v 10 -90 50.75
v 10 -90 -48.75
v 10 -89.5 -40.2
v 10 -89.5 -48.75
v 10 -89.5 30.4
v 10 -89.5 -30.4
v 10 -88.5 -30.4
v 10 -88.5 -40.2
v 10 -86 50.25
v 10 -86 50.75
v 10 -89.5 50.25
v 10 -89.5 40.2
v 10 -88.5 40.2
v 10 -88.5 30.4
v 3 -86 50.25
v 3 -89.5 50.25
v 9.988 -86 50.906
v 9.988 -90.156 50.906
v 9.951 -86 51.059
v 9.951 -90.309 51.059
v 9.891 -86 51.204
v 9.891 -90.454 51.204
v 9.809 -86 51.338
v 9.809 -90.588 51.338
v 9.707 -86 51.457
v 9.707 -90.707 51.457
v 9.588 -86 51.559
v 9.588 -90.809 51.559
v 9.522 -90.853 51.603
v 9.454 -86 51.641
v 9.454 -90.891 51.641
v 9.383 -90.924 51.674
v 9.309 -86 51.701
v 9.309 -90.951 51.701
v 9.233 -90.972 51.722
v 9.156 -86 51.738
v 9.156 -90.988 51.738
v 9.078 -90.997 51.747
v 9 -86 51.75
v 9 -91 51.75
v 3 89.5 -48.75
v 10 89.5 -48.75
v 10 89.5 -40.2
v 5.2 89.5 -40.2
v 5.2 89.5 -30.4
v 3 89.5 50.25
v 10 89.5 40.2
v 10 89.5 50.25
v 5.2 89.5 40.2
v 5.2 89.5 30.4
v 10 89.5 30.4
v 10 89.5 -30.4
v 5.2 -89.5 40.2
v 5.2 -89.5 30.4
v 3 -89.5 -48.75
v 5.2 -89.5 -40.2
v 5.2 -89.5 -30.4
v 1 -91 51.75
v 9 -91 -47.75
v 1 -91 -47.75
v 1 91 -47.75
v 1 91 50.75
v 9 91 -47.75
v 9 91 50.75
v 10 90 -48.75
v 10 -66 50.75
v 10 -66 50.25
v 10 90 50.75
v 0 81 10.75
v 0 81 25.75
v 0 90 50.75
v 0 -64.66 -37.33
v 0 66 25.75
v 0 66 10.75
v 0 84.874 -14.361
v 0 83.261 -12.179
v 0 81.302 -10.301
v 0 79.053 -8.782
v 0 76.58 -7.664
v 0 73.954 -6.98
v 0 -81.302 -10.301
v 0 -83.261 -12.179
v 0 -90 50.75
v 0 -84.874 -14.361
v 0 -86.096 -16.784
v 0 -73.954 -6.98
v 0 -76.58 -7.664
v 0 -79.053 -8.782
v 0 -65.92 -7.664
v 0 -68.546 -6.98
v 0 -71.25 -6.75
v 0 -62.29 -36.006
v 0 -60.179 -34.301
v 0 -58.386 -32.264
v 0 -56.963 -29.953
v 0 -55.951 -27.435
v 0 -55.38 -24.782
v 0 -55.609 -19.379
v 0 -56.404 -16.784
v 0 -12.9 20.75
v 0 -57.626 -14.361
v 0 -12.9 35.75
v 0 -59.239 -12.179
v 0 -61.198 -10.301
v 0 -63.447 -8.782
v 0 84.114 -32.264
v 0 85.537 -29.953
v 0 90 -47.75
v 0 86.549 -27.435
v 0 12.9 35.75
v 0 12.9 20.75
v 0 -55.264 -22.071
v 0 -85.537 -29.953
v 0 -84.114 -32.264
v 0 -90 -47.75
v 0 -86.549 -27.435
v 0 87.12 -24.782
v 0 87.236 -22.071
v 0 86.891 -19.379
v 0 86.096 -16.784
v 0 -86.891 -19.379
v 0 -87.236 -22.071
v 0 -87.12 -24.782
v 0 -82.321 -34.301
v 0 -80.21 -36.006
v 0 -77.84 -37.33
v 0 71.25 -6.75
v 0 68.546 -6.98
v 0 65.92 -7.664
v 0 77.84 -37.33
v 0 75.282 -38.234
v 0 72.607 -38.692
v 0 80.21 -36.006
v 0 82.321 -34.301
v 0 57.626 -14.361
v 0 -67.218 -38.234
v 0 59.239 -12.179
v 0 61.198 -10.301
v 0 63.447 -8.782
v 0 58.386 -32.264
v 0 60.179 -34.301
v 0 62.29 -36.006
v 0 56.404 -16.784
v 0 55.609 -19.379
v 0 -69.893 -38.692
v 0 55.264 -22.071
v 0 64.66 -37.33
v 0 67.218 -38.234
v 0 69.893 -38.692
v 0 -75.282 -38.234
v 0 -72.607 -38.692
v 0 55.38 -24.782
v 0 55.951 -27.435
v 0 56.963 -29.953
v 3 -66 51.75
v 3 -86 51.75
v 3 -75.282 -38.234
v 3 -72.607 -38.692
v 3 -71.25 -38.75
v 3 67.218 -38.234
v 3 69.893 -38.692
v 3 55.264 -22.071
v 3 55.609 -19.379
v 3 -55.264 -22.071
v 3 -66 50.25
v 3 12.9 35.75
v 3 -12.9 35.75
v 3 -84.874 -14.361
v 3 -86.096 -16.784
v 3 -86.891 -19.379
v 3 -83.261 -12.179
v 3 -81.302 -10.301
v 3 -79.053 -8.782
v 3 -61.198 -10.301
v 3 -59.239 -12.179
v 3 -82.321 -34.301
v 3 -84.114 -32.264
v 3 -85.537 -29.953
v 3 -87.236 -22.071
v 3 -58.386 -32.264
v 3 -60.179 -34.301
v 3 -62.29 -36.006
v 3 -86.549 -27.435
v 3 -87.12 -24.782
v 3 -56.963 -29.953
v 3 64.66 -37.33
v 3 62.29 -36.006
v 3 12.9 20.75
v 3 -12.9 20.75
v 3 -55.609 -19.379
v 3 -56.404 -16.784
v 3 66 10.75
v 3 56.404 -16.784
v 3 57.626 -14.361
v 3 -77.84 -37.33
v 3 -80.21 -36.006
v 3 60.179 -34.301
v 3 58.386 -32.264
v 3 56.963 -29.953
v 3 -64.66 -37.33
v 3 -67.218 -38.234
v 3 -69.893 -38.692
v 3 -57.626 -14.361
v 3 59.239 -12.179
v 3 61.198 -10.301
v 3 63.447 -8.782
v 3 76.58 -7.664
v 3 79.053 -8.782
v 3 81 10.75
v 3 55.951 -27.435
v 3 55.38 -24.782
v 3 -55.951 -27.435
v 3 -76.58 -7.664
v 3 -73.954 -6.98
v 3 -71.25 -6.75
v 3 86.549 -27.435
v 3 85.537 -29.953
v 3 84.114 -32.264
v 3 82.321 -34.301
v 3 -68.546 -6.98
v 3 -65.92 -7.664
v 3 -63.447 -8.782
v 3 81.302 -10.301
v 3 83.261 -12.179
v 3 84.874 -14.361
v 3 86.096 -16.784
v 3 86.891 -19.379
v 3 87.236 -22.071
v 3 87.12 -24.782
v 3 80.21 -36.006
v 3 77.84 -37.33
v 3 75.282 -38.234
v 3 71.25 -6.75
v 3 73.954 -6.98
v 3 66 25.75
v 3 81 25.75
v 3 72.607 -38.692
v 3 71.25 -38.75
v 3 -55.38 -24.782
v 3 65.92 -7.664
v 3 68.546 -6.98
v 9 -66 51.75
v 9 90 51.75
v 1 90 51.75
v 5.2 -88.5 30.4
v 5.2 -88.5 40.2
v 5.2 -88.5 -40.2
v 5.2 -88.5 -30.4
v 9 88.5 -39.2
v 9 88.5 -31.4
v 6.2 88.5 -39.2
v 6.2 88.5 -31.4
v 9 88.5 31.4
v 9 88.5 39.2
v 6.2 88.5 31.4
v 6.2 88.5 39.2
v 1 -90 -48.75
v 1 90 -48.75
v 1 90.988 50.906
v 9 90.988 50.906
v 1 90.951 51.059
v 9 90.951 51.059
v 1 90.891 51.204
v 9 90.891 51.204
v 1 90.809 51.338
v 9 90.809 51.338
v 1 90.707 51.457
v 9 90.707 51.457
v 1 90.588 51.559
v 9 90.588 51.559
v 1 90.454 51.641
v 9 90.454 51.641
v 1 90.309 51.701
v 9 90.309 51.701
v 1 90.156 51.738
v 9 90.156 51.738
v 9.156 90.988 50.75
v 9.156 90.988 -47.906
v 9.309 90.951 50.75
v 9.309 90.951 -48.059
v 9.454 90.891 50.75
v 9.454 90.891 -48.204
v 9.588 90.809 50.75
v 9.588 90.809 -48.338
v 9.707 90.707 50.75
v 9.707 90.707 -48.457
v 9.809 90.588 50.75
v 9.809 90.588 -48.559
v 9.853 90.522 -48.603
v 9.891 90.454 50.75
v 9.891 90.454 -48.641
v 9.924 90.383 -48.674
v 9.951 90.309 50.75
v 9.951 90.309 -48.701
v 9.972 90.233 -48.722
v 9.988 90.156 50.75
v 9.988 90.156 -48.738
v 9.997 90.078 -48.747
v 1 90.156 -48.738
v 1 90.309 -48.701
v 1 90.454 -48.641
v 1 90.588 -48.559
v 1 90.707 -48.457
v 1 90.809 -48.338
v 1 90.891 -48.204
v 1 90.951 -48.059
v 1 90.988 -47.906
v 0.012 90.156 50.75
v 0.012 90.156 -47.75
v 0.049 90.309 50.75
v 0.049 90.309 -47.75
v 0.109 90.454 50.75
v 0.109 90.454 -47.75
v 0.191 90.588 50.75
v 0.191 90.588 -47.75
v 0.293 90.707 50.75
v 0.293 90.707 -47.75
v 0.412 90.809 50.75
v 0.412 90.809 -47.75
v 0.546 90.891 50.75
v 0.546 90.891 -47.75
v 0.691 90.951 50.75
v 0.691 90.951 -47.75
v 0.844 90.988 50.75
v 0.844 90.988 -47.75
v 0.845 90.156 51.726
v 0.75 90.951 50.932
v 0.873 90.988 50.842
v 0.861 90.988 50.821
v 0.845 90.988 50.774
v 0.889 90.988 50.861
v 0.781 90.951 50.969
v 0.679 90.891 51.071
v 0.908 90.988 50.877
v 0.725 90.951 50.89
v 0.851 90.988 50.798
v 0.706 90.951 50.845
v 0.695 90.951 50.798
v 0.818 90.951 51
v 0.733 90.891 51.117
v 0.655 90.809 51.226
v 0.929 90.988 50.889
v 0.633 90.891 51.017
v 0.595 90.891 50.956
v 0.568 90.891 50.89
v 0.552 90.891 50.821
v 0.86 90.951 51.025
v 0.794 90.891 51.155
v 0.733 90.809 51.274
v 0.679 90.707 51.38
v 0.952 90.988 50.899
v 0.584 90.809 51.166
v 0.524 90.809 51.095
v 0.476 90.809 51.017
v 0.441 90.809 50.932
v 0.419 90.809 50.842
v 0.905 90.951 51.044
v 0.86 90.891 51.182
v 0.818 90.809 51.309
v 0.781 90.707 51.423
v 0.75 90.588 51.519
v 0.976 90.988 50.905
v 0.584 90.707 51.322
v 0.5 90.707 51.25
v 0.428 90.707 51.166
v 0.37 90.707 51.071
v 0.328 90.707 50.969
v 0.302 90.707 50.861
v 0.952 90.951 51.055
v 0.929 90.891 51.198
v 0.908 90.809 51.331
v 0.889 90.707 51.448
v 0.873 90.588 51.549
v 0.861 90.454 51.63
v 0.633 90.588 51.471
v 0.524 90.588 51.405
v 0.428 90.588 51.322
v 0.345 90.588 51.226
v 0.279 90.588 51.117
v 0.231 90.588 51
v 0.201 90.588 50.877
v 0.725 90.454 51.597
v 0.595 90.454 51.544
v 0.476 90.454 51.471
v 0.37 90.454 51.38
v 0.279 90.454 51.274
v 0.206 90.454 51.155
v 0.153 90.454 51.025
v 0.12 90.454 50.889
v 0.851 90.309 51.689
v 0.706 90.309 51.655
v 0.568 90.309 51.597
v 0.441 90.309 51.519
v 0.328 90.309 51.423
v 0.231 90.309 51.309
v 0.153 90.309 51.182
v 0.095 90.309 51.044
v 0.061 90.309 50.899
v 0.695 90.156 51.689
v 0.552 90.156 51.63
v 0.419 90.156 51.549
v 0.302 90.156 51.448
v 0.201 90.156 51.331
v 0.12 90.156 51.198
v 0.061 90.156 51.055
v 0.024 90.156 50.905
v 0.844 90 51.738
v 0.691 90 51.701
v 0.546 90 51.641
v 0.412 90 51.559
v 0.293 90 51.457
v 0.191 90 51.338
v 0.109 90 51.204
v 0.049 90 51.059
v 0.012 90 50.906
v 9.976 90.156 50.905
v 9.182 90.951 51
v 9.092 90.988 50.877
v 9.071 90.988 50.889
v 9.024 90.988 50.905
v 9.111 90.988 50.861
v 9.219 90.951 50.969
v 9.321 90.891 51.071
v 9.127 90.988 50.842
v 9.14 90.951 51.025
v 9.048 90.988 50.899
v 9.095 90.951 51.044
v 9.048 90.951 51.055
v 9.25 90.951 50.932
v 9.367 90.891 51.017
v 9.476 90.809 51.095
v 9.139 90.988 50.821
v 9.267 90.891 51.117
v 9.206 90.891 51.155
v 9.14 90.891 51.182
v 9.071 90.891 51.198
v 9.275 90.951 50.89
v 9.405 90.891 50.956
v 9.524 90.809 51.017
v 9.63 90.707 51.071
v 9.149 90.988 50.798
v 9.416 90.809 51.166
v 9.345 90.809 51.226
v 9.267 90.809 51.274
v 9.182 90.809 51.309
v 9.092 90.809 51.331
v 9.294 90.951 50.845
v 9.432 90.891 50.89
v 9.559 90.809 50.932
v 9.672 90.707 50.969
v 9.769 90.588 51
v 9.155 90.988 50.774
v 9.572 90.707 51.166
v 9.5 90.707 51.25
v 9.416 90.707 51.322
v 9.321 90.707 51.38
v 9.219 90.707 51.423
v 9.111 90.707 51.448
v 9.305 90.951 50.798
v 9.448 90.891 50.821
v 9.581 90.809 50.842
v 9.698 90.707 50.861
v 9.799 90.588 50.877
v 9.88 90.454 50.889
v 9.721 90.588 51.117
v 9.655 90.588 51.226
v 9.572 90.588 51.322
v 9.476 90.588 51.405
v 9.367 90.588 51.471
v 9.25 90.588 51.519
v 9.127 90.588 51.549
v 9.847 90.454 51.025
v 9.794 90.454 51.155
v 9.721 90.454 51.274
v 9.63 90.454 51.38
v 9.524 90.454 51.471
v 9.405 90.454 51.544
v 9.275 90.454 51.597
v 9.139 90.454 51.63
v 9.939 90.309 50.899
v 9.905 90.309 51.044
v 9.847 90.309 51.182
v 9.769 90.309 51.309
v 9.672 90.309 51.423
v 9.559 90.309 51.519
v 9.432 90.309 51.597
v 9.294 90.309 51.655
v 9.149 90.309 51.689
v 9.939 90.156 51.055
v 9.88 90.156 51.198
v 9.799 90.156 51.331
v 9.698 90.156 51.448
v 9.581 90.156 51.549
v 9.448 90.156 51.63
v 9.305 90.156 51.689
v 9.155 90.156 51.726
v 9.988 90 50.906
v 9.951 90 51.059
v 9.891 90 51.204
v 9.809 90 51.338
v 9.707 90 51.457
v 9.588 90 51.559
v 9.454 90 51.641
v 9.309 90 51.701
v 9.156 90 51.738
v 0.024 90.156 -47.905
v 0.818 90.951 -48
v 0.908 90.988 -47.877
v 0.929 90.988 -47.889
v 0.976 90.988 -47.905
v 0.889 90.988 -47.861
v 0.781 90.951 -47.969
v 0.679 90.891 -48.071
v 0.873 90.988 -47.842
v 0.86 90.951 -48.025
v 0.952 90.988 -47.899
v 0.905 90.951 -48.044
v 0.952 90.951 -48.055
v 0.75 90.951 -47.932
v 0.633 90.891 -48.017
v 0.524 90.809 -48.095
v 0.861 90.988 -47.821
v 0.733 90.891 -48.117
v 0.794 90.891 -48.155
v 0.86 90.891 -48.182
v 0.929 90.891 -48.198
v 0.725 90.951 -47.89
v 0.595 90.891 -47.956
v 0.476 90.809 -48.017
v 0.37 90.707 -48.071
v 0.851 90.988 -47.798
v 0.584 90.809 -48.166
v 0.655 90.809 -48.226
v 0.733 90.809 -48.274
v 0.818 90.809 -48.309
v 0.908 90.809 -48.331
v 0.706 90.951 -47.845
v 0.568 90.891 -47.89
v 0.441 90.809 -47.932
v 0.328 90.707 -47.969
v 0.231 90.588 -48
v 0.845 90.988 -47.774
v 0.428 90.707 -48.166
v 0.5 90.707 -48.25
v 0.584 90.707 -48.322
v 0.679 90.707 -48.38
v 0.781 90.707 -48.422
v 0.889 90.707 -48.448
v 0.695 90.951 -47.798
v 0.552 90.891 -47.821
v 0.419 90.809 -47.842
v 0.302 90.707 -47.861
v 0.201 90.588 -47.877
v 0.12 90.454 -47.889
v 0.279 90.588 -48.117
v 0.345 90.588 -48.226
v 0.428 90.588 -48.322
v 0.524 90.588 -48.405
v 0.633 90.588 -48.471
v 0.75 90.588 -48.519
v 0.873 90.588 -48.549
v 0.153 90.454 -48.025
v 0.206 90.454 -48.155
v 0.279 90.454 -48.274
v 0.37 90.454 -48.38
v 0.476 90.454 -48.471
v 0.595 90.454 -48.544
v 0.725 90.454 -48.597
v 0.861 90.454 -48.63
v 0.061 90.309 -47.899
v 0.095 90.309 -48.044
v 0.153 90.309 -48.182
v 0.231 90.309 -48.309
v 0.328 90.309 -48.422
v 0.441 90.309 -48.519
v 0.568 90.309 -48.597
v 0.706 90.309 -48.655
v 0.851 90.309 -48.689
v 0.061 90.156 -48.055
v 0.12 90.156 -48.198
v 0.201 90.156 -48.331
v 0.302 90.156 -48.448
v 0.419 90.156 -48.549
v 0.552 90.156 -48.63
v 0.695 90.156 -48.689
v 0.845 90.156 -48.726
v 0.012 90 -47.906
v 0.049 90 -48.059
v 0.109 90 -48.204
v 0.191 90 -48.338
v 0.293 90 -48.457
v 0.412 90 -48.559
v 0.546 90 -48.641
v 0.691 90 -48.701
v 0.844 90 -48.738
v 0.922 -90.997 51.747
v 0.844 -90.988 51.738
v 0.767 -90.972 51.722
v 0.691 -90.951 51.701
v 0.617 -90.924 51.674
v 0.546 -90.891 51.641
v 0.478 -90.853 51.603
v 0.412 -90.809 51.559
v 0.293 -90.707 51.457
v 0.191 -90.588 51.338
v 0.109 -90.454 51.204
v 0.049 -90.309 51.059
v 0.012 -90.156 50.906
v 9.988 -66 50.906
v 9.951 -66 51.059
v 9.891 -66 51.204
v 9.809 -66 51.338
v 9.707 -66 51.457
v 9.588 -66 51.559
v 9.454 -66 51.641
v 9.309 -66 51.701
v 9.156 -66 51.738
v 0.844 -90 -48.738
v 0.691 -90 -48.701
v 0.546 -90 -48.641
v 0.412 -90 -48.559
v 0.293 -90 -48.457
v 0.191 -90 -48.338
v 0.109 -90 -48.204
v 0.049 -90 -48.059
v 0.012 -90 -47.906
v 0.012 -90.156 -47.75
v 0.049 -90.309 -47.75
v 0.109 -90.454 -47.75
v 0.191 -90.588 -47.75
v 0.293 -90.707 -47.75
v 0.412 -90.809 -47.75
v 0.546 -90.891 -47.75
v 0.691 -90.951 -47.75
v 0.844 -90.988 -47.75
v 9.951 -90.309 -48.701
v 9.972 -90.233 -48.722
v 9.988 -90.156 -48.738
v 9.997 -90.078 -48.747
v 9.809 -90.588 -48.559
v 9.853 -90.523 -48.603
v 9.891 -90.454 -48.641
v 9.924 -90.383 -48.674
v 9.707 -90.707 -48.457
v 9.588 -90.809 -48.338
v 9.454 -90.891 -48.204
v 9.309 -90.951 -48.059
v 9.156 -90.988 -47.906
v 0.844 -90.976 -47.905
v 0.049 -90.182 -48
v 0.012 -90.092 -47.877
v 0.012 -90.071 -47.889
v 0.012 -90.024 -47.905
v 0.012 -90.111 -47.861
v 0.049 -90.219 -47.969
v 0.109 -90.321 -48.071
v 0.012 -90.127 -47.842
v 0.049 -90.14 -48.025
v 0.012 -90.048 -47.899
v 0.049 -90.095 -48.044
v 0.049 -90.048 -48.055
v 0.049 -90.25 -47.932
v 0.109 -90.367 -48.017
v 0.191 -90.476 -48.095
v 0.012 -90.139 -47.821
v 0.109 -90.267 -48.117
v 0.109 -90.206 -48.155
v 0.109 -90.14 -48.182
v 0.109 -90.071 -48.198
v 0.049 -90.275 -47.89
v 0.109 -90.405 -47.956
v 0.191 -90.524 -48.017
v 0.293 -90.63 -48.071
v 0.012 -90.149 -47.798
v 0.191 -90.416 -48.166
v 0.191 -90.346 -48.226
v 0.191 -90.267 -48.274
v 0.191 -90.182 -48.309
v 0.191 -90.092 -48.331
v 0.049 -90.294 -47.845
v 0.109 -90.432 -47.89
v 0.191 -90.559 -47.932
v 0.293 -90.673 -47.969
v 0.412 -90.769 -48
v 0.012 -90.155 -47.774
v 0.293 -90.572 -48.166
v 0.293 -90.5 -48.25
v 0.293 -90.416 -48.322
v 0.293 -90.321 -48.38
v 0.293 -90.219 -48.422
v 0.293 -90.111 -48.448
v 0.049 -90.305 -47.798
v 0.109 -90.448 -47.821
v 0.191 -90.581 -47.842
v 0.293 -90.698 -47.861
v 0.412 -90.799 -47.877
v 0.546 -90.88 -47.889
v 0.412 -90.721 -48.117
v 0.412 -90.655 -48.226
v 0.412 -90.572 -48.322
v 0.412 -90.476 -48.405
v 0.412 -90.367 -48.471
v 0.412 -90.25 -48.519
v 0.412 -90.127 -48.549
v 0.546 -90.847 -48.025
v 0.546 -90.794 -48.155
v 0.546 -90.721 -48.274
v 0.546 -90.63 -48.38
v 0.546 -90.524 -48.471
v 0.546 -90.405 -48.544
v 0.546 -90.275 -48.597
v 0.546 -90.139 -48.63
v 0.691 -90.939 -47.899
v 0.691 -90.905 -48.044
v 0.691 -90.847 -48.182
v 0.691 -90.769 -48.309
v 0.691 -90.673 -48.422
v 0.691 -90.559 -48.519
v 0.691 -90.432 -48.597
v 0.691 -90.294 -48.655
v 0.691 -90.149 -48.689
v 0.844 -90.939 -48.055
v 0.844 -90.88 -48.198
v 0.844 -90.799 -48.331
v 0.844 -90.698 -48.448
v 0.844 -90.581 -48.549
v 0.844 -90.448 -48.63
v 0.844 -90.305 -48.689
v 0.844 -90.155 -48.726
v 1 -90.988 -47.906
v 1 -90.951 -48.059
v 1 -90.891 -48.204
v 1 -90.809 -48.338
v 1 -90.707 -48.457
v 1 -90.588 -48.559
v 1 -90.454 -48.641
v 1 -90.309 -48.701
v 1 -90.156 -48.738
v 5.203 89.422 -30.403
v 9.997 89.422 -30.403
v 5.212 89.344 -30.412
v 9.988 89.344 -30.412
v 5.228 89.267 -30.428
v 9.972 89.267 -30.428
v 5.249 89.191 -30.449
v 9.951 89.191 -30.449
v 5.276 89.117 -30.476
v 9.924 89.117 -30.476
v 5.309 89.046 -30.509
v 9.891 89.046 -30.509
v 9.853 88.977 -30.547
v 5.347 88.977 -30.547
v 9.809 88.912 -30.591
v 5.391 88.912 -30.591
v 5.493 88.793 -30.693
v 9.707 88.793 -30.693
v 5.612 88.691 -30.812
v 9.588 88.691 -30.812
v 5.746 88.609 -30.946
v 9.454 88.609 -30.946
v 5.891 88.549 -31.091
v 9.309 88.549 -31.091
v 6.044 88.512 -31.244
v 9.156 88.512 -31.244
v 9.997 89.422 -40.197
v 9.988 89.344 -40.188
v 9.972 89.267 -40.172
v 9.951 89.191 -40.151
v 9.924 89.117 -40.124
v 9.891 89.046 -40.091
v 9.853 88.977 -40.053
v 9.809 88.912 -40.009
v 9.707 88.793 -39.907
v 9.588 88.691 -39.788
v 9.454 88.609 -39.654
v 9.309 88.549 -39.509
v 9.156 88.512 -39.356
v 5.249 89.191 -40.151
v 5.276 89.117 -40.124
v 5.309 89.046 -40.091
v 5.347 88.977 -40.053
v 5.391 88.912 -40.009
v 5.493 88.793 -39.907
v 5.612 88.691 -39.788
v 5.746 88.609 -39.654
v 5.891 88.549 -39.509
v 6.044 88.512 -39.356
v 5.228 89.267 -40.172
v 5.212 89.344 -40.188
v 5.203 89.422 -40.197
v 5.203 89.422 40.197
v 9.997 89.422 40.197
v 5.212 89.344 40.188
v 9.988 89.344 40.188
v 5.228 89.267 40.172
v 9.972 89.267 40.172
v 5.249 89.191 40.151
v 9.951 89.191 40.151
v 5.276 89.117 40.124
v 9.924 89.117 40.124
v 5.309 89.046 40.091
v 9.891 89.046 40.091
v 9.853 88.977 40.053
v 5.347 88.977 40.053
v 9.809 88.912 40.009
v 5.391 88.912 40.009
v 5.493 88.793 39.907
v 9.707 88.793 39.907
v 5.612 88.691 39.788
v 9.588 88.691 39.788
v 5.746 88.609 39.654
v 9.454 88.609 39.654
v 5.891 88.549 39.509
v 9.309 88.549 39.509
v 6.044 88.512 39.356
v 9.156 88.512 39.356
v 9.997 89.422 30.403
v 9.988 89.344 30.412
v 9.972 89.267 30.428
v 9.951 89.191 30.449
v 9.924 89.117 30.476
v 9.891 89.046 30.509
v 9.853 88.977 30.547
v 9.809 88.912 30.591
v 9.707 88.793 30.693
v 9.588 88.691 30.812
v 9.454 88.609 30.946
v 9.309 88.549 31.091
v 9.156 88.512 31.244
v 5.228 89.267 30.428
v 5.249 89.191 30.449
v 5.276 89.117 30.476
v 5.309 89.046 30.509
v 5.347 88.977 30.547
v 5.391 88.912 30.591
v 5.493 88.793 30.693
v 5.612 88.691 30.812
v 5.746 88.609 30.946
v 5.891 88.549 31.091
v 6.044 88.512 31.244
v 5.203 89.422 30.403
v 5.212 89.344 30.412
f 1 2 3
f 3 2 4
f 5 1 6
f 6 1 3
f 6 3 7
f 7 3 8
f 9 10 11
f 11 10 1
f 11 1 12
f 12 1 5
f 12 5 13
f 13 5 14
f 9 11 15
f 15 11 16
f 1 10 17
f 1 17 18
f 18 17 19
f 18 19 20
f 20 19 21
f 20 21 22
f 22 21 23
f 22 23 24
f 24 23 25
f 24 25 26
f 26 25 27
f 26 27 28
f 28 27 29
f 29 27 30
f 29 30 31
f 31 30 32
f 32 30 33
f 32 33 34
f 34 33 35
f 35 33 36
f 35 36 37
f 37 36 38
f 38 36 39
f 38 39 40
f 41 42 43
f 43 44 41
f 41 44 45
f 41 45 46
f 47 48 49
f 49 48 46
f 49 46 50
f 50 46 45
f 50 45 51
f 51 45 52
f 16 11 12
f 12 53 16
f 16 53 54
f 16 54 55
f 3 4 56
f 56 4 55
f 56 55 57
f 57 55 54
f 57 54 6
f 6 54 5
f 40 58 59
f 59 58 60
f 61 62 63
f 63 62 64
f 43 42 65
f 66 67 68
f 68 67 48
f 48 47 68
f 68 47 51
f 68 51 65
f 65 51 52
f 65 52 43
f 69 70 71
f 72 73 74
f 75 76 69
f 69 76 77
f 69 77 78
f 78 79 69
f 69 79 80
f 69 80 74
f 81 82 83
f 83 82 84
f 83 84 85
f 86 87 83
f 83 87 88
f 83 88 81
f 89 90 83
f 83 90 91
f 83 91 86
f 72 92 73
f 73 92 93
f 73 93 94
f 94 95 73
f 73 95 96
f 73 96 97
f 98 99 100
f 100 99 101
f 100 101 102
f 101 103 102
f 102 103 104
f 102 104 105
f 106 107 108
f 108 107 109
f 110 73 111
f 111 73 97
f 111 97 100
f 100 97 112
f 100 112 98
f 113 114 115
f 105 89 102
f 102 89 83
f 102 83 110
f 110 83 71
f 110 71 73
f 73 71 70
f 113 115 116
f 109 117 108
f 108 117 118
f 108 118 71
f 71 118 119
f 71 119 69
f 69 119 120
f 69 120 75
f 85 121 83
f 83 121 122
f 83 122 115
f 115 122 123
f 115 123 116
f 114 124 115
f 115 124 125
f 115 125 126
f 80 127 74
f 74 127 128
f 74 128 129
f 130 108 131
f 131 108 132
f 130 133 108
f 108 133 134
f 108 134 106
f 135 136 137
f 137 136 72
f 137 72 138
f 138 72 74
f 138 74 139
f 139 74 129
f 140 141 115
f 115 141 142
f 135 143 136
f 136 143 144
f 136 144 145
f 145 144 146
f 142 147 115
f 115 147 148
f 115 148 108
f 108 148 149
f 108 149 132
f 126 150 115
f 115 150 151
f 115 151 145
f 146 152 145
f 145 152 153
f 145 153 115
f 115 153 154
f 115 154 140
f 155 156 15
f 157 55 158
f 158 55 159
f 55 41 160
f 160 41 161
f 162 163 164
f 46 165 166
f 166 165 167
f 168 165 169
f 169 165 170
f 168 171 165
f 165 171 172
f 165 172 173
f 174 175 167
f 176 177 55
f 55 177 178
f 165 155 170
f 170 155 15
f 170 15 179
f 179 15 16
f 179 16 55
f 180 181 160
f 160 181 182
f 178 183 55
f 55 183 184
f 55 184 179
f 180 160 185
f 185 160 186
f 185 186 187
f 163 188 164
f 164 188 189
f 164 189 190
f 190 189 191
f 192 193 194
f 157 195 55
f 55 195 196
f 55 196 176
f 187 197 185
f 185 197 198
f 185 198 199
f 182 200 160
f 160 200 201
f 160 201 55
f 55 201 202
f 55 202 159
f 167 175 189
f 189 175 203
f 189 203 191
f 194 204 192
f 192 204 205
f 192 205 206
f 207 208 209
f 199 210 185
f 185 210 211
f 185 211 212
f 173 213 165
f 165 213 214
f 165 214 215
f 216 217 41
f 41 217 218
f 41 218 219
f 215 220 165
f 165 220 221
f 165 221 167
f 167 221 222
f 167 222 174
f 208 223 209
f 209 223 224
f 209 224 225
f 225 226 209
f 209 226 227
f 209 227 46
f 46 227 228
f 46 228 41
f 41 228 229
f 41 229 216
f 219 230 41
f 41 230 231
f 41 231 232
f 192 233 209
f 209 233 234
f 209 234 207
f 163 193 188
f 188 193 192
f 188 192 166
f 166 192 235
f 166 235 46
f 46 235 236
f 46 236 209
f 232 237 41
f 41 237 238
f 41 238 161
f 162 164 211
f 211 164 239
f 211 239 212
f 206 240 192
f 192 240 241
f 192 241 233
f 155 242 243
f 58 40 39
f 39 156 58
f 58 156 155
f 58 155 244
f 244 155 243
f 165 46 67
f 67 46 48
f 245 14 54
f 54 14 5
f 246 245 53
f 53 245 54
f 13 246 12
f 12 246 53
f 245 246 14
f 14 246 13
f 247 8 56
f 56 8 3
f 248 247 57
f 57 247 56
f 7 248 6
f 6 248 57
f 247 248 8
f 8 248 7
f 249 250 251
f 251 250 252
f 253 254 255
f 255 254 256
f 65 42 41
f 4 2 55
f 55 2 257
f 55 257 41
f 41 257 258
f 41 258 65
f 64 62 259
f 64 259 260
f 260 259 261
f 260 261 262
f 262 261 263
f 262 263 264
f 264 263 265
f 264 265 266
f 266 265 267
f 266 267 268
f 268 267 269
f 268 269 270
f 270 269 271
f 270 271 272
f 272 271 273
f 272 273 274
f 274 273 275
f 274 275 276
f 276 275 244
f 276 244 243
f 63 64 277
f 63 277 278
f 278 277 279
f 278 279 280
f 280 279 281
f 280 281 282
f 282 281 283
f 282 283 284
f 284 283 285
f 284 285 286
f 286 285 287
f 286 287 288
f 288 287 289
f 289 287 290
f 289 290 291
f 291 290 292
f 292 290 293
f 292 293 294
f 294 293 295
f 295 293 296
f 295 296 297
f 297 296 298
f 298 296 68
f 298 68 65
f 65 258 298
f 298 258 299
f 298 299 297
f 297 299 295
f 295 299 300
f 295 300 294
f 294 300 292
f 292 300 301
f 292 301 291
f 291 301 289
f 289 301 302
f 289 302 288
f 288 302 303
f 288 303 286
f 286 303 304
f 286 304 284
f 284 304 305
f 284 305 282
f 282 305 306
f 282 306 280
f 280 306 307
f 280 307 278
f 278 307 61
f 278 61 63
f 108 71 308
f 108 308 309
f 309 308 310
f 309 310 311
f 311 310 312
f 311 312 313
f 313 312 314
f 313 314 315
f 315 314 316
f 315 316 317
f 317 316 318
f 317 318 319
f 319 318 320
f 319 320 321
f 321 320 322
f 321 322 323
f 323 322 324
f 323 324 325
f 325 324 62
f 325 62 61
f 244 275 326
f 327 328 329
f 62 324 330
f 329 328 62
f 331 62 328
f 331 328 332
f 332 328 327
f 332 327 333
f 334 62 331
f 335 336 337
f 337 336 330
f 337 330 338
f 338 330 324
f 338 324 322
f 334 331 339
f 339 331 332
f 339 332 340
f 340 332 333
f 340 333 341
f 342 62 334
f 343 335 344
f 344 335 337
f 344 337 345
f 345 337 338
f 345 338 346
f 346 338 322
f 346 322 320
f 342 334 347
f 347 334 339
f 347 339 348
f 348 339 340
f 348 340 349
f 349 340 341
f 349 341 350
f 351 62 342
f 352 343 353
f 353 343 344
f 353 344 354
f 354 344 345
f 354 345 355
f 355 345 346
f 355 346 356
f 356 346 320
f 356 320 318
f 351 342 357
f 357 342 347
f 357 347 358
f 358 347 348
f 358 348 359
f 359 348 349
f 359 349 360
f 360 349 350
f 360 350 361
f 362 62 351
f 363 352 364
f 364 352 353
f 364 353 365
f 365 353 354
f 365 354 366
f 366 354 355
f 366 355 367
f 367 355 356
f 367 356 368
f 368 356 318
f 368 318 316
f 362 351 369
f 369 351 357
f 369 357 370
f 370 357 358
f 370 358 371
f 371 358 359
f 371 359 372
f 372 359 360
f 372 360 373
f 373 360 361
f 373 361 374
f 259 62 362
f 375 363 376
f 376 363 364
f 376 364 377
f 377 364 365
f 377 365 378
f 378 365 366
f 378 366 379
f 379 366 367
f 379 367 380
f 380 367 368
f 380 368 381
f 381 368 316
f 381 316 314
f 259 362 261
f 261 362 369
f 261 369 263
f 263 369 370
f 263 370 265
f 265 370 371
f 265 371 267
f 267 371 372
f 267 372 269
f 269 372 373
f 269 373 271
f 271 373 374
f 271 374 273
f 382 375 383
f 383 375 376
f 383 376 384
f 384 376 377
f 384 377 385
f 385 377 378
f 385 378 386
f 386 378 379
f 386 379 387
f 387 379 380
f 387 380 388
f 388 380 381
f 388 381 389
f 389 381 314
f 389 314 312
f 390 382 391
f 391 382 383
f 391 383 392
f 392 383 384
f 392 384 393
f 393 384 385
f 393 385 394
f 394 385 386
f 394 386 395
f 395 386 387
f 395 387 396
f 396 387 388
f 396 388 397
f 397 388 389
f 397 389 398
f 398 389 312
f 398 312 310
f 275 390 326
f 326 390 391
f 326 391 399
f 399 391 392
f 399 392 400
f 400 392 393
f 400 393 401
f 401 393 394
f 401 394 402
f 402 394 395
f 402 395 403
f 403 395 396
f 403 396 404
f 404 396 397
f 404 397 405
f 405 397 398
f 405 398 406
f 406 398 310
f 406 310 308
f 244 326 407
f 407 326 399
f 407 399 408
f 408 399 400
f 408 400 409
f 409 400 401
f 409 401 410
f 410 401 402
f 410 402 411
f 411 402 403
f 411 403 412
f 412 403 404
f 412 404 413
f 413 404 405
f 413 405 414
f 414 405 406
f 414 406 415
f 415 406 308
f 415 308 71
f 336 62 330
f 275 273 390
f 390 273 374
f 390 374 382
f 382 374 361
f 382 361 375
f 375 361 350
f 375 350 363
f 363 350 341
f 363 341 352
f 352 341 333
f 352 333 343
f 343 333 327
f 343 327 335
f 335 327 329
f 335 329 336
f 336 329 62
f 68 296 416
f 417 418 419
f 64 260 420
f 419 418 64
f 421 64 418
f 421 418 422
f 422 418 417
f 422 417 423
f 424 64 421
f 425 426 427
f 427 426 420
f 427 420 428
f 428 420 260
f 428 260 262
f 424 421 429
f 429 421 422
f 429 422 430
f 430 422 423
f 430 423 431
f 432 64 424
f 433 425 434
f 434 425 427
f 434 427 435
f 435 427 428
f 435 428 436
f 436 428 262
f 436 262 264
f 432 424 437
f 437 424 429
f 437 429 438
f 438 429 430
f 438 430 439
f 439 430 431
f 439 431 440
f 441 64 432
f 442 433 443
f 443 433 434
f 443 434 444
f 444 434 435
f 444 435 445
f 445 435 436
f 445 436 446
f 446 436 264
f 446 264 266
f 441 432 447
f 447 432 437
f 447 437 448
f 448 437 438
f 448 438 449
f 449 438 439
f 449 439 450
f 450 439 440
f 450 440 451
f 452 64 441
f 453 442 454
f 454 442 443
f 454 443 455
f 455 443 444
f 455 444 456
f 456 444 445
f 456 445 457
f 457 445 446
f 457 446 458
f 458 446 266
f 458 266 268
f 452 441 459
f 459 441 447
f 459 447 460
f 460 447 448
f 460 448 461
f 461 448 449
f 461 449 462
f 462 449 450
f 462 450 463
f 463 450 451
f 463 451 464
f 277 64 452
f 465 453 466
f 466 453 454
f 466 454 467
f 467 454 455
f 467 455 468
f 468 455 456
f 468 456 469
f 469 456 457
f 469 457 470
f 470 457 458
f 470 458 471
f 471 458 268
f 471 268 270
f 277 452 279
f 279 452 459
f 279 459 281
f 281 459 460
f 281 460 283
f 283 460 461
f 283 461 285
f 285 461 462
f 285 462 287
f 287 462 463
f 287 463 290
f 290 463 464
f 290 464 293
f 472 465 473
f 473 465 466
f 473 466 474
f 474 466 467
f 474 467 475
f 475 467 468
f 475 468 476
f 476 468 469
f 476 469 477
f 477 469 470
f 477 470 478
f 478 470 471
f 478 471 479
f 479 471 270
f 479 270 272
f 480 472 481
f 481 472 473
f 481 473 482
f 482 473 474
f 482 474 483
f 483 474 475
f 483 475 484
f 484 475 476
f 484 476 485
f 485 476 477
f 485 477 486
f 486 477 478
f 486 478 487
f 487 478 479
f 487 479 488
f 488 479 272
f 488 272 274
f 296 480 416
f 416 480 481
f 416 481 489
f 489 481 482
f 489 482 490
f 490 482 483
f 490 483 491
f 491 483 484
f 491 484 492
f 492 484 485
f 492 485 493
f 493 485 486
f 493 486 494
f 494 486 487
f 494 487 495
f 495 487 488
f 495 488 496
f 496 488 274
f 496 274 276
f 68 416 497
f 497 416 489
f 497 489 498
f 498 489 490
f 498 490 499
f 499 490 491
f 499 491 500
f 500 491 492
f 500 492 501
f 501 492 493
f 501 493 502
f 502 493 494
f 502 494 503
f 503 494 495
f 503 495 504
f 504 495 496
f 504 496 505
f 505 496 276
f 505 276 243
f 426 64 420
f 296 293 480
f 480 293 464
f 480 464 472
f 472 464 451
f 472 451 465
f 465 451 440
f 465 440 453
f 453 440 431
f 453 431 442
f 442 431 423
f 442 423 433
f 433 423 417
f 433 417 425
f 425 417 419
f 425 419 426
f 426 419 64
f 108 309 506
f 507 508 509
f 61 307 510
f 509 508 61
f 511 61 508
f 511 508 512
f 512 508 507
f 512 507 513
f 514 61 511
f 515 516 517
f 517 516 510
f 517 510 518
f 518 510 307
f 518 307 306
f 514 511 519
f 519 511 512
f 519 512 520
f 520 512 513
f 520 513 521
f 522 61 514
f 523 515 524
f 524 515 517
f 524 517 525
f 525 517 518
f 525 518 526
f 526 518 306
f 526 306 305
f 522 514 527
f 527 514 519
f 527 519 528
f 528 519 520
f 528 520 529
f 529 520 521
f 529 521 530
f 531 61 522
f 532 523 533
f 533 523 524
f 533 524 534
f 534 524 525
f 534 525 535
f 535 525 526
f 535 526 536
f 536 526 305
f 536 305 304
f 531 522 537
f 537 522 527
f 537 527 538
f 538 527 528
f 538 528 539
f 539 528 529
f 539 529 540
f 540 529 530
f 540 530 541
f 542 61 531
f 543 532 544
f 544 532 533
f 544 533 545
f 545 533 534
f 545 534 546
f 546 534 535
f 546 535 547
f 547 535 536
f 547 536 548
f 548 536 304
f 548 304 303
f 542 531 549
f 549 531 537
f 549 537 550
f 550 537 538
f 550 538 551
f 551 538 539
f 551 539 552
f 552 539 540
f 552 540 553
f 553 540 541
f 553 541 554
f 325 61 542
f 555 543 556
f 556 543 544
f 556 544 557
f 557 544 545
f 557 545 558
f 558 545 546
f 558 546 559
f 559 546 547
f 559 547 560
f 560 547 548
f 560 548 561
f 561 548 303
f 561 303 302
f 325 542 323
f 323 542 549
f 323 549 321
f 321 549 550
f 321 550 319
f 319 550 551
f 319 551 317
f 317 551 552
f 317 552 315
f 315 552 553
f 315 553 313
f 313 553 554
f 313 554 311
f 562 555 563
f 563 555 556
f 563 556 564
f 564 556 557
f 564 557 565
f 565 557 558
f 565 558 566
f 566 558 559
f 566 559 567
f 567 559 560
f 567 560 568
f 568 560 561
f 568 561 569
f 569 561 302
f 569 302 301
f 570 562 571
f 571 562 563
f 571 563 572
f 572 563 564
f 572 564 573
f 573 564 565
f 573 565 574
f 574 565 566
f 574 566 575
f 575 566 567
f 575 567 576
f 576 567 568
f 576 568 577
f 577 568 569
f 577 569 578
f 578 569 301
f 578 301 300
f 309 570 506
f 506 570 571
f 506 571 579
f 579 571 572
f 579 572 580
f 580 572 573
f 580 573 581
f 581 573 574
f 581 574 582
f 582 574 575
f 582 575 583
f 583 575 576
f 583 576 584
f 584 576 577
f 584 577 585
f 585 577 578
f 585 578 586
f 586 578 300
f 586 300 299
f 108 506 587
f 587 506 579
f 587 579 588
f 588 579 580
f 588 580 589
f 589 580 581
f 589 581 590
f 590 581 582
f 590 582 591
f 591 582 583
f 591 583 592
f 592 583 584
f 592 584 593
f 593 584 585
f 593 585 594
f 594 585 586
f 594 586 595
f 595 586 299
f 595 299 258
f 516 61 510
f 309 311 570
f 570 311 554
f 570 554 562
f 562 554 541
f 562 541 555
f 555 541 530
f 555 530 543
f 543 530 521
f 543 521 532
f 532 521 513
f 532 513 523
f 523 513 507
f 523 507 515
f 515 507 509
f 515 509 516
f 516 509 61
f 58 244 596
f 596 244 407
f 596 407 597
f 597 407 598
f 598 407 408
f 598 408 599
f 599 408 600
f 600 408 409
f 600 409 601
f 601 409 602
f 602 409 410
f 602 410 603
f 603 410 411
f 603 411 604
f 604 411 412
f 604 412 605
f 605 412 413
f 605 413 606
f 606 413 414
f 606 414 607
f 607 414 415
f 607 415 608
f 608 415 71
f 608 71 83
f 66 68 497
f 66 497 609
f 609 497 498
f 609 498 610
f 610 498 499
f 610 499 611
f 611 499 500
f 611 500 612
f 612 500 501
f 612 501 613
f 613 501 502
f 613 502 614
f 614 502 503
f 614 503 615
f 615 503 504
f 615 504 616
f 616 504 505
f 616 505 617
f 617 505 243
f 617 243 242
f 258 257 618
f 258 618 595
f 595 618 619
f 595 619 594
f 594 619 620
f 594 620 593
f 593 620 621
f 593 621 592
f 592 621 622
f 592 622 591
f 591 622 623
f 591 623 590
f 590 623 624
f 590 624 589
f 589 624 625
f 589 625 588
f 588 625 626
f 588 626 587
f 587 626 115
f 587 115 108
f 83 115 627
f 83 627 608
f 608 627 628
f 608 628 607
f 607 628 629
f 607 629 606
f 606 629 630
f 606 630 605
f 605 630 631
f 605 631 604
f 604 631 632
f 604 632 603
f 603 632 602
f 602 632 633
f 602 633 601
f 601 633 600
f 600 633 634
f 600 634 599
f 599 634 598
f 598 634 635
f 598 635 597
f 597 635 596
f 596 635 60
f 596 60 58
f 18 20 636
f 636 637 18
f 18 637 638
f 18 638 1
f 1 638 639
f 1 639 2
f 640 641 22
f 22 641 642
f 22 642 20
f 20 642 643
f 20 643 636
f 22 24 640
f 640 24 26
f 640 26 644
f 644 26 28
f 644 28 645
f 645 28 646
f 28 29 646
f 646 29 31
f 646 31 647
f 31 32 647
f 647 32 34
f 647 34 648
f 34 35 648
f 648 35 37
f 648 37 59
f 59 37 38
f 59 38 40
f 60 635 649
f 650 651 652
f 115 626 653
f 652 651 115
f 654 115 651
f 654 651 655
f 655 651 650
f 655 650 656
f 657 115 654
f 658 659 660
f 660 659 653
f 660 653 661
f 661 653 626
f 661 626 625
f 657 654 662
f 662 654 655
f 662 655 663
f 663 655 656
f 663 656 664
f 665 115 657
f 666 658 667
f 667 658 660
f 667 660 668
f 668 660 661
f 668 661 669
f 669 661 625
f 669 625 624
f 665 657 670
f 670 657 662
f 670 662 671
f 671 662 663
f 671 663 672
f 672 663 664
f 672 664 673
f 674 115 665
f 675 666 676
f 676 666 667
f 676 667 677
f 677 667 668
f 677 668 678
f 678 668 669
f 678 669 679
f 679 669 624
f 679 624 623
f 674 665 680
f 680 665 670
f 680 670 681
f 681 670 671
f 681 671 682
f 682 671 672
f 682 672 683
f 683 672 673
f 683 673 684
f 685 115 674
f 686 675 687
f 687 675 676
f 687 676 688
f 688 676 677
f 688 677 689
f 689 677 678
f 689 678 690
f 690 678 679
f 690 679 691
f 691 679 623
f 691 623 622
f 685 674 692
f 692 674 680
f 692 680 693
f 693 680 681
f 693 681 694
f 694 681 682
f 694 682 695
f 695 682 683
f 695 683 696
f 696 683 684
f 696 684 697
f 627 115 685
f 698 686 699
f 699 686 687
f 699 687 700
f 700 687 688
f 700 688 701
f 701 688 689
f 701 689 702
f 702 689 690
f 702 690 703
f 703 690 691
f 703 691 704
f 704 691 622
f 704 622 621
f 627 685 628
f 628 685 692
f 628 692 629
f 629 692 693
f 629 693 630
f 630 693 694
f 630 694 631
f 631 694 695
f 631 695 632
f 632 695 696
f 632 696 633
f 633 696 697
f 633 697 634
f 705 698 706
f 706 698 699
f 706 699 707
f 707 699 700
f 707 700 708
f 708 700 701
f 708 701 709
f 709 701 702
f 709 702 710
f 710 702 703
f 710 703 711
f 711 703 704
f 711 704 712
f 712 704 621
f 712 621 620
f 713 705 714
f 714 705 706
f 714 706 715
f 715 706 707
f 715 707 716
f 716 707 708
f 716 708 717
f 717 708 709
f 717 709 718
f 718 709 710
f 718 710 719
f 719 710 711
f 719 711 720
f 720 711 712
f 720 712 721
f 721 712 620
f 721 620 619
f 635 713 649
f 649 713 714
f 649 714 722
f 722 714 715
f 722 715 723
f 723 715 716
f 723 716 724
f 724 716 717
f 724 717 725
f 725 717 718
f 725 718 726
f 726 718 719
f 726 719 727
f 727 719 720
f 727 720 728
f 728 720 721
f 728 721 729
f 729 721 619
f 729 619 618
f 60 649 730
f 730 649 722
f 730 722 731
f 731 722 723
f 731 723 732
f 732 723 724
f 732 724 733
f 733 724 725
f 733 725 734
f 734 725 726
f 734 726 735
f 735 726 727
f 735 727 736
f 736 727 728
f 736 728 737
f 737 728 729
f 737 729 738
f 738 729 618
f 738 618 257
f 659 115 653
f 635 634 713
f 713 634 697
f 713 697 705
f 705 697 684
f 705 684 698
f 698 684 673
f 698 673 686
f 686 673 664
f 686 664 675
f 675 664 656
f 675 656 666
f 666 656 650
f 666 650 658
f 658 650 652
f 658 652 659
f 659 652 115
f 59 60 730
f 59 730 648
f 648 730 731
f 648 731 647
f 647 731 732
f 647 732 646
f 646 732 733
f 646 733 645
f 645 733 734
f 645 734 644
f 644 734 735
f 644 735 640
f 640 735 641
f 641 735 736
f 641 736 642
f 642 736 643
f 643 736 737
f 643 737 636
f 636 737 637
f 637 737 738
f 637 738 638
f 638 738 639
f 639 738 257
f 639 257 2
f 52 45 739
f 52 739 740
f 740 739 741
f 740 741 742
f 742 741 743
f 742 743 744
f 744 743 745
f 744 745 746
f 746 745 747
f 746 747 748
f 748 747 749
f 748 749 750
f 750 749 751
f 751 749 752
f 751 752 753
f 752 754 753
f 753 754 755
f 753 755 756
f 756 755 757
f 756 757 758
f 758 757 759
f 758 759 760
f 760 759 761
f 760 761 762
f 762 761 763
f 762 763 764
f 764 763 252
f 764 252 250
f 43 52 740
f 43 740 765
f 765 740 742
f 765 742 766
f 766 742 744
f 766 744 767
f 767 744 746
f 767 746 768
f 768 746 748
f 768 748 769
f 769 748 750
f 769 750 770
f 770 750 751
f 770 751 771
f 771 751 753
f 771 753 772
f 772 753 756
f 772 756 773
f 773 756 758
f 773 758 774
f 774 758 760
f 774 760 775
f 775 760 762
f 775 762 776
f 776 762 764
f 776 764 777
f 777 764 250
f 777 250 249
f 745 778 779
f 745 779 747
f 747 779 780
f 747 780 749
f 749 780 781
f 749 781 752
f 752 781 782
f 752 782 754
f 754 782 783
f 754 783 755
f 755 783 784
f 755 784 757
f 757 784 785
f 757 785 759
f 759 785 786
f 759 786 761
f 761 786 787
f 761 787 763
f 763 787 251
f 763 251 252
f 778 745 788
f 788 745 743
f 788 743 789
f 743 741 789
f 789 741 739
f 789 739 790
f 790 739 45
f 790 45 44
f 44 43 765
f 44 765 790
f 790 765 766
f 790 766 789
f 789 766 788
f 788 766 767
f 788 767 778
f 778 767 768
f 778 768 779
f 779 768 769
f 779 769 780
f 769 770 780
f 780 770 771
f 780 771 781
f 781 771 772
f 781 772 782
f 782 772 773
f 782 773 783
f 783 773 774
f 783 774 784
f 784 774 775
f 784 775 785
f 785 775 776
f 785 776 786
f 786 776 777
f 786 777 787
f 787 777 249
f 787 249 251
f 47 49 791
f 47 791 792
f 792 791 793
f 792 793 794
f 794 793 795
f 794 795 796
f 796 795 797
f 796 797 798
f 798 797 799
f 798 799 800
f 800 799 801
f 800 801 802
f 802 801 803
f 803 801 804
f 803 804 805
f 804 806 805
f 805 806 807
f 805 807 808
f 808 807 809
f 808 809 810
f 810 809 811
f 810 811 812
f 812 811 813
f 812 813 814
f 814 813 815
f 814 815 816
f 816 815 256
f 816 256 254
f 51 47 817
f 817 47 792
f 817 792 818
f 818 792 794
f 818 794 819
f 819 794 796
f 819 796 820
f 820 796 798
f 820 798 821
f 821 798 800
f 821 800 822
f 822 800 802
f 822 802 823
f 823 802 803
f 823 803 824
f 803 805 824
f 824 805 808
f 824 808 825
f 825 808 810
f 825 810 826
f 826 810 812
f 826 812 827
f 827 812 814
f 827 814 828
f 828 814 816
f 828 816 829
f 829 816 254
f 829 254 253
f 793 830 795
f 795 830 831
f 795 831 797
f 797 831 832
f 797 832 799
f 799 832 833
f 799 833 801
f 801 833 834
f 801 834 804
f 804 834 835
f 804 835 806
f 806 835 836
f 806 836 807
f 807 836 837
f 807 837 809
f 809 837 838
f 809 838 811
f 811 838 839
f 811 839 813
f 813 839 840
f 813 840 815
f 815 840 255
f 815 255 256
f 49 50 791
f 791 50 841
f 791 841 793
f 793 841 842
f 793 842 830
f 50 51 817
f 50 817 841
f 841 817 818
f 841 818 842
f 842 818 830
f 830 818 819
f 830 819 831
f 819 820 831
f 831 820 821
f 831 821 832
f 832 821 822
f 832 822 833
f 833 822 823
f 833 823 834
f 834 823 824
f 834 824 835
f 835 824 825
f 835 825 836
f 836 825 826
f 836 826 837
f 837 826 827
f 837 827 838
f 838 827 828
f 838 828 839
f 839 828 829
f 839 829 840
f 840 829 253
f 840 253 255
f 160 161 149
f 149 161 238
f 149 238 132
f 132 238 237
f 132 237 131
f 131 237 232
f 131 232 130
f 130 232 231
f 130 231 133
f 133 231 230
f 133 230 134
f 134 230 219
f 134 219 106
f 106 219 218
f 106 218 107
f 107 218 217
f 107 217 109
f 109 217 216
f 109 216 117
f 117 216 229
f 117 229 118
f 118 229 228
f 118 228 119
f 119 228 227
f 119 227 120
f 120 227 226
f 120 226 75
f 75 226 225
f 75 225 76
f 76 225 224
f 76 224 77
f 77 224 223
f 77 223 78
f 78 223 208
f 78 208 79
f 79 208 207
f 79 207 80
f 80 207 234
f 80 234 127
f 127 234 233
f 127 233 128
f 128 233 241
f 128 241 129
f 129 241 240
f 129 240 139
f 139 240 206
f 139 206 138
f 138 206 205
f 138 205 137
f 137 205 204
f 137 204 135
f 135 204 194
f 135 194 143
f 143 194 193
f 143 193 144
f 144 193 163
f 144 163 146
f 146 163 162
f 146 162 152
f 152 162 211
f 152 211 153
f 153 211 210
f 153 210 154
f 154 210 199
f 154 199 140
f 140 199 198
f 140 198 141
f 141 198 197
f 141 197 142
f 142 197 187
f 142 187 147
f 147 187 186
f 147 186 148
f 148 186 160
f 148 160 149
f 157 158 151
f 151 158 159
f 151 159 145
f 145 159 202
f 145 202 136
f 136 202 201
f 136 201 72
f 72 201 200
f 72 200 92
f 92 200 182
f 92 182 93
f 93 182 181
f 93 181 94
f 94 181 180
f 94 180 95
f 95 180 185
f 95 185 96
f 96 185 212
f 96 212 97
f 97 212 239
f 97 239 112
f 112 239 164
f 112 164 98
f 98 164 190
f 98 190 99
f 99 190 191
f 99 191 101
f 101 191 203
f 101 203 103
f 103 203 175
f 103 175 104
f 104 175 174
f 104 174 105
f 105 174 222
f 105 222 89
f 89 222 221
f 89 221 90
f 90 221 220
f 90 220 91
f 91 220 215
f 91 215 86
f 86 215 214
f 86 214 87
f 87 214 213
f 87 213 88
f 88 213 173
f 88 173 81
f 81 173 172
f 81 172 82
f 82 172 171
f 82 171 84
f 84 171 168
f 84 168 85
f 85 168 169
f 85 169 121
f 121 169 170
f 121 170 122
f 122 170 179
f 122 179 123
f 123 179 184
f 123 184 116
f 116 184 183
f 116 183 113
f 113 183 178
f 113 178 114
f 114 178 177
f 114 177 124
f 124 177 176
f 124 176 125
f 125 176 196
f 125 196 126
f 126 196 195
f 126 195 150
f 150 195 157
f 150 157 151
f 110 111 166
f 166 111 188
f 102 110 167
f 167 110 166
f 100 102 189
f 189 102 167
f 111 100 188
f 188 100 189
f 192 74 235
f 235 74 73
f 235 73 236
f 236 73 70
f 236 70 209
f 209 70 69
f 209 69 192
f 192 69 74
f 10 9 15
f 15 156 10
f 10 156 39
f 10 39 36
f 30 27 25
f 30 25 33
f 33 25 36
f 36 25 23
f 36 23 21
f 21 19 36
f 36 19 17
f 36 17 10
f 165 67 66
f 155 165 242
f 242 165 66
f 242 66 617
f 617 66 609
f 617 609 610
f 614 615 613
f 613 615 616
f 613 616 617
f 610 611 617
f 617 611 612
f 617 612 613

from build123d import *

# Parameters (mm, degrees)
ESBO_O1_W                 = 182
ESBO_O1_H                 = 103.5
RESSALTO_EXTRUS_O1_DEPTH  = 10
ESBO_O2_W                 = 179
ESBO_O2_H                 = 100.5
CORTE_EXTRUS_O1_DEPTH     = 7
ESBO_O4_W                 = 4.8
ESBO_O4_H                 = 9.8
RESSALTO_EXTRUS_O2_DEPTH  = 1
ESPELHAR2_COPY_1_SKETCH_W = 4.8
ESPELHAR2_COPY_1_SKETCH_H = 9.8
ESPELHAR2_COPY_1_DEPTH    = 1
ESBO_O5_W                 = 10
ESBO_O5_H                 = 182
CORTE_EXTRUS_O2_DEPTH     = 3
FILETE3_R                 = 1
FILETE8_R                 = 1
ESBO_O6_R                 = 16
CORTE_EXTRUS_O3_DEPTH     = 10
ESBO_O7_W                 = 25.8
ESBO_O7_H                 = 15
CORTE_EXTRUS_O4_DEPTH     = 10
ESBO_O9_W                 = 15
ESBO_O9_H                 = 15
CORTE_EXTRUS_O5_DEPTH     = 10
ESBO_O10_W                = 7.835934364
ESBO_O10_H                = 20
CORTE_EXTRUS_O6_DEPTH     = 10


with BuildPart() as part:
    # Esboço1 → Ressalto-extrusão1 (new body)
    with BuildSketch(Plane.YZ):
        Rectangle(ESBO_O1_W, ESBO_O1_H)
    extrude(amount=RESSALTO_EXTRUS_O1_DEPTH)

    # Esboço2 → Corte-extrusão1 (cut)
    with BuildSketch(Plane.YZ.offset(10)):
        Rectangle(ESBO_O2_W, ESBO_O2_H)
    extrude(amount=-CORTE_EXTRUS_O1_DEPTH, mode=Mode.SUBTRACT)

    # Esboço4 → Ressalto-extrusão2 (add)
    with BuildSketch(Plane(origin=(0, -89.5, 0), x_dir=(-1, 0, 0), z_dir=(0, 1, 0))):
        with Locations((-7.6, 35.3)):
            Rectangle(ESBO_O4_W, ESBO_O4_H)
    ressalto_extrus_o2 = extrude(amount=RESSALTO_EXTRUS_O2_DEPTH)

    # Espelhar1: Ressalto-extrusão2 across plane
    add(ressalto_extrus_o2.mirror(Plane.XY))

    # Espelhar2: Ressalto-extrusão2 across plane
    add(ressalto_extrus_o2.mirror(Plane.ZX))

    # Espelhar2 copy 1 sketch → Espelhar2 copy 1 (add)
    with BuildSketch(Plane(origin=(0, 89.5, 0), x_dir=(-1, 0, 0), z_dir=(0, -1, 0))):
        with Locations((-7.6, 35.3)):
            Rectangle(ESPELHAR2_COPY_1_SKETCH_W, ESPELHAR2_COPY_1_SKETCH_H)
    extrude(amount=ESPELHAR2_COPY_1_DEPTH)

    # Esboço5 → Corte-extrusão2 (cut)
    with BuildSketch(Plane(origin=(0, 0, -51.75), x_dir=(1, 0, 0), z_dir=(0, 0, -1))):
        with Locations((5, 0)):
            Rectangle(ESBO_O5_W, ESBO_O5_H)
    extrude(amount=-CORTE_EXTRUS_O2_DEPTH, mode=Mode.SUBTRACT)

    # Filete3
    filete3_edges = [part.edges().sort_by_distance(p)[0] for p in [
        (10, 0, 51.75),
        (10, -91, 1.5),
        (0, 0, 51.75),
        (0, -91, 1.5),
        (5, 91, 51.75),
        (0, 91, 1.5),
        (10, 91, 1.5),
        (0, 0, -48.75),
        (5, -91, -48.75),
        (5, 91, -48.75),
    ]]
    fillet(filete3_edges, radius=FILETE3_R)

    # Filete8
    filete8_edges = [part.edges().sort_by_distance(p)[0] for p in [
        (7.6, 88.5, -40.2),
        (5.2, 88.5, -35.3),
        (7.6, 88.5, -30.4),
        (10, 88.5, -35.3),
        (7.6, 88.5, 30.4),
        (5.2, 88.5, 35.3),
        (7.6, 88.5, 40.2),
        (10, 88.5, 35.3),
    ]]
    fillet(filete8_edges, radius=FILETE8_R - 0.0001)  # a hair under: the kernel refuses the full size

    # Esboço6 → Corte-extrusão3 (cut)
    with BuildSketch(Plane(origin=(0, 0, 0), x_dir=(0, -1, 0), z_dir=(-1, 0, 0))):
        with Locations(Location((-71.25, -22.75, 0), (0, 0, 90))):
            Circle(ESBO_O6_R)
    corte_extrus_o3 = extrude(amount=-CORTE_EXTRUS_O3_DEPTH, mode=Mode.SUBTRACT)

    # Espelhar3: Corte-extrusão3 across plane
    add(corte_extrus_o3.mirror(Plane.ZX), mode=Mode.SUBTRACT)

    # Esboço7 → Corte-extrusão4 (cut)
    with BuildSketch(Plane(origin=(0, 0, 0), x_dir=(0, -1, 0), z_dir=(-1, 0, 0))):
        with Locations((0, 28.25)):
            Rectangle(ESBO_O7_W, ESBO_O7_H)
    extrude(amount=-CORTE_EXTRUS_O4_DEPTH, mode=Mode.SUBTRACT)

    # Esboço9 → Corte-extrusão5 (cut)
    with BuildSketch(Plane.YZ.offset(3)):
        with Locations((73.5, 18.25)):
            Rectangle(ESBO_O9_W, ESBO_O9_H)
    extrude(amount=-CORTE_EXTRUS_O5_DEPTH, mode=Mode.SUBTRACT)

    # Esboço10 → Corte-extrusão6 (cut)
    with BuildSketch(Plane.XY.offset(51.75)):
        with Locations((6.917967182, -76)):
            Rectangle(ESBO_O10_W, ESBO_O10_H)
    extrude(amount=-CORTE_EXTRUS_O6_DEPTH, mode=Mode.SUBTRACT)


solid = part.part
